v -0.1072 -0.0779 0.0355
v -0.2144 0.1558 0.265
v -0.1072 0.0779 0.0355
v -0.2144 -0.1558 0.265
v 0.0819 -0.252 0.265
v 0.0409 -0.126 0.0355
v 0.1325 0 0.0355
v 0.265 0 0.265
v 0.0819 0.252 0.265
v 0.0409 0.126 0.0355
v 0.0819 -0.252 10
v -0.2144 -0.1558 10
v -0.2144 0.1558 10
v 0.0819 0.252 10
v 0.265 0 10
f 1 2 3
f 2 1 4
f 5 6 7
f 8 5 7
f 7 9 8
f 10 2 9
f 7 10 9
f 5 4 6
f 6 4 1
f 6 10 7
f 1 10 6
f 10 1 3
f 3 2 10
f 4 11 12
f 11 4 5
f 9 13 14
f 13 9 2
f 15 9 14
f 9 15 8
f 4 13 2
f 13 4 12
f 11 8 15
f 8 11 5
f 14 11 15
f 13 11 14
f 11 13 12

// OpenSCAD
module 050_PTP2540S() {
   color("Gold")
   //tip part 1
   translate([0,0,0.53/2])sphere(d=0.53);
   //tip part 2
   color("Gold")
    translate([0,0,0.53/2])cylinder(h=2,d=0.53,center=false);
   //shaft 
   color("Gold")
   translate([0,0,2])cylinder(h=8,d=0.53,center=false);
}

050_PTP2540S();
